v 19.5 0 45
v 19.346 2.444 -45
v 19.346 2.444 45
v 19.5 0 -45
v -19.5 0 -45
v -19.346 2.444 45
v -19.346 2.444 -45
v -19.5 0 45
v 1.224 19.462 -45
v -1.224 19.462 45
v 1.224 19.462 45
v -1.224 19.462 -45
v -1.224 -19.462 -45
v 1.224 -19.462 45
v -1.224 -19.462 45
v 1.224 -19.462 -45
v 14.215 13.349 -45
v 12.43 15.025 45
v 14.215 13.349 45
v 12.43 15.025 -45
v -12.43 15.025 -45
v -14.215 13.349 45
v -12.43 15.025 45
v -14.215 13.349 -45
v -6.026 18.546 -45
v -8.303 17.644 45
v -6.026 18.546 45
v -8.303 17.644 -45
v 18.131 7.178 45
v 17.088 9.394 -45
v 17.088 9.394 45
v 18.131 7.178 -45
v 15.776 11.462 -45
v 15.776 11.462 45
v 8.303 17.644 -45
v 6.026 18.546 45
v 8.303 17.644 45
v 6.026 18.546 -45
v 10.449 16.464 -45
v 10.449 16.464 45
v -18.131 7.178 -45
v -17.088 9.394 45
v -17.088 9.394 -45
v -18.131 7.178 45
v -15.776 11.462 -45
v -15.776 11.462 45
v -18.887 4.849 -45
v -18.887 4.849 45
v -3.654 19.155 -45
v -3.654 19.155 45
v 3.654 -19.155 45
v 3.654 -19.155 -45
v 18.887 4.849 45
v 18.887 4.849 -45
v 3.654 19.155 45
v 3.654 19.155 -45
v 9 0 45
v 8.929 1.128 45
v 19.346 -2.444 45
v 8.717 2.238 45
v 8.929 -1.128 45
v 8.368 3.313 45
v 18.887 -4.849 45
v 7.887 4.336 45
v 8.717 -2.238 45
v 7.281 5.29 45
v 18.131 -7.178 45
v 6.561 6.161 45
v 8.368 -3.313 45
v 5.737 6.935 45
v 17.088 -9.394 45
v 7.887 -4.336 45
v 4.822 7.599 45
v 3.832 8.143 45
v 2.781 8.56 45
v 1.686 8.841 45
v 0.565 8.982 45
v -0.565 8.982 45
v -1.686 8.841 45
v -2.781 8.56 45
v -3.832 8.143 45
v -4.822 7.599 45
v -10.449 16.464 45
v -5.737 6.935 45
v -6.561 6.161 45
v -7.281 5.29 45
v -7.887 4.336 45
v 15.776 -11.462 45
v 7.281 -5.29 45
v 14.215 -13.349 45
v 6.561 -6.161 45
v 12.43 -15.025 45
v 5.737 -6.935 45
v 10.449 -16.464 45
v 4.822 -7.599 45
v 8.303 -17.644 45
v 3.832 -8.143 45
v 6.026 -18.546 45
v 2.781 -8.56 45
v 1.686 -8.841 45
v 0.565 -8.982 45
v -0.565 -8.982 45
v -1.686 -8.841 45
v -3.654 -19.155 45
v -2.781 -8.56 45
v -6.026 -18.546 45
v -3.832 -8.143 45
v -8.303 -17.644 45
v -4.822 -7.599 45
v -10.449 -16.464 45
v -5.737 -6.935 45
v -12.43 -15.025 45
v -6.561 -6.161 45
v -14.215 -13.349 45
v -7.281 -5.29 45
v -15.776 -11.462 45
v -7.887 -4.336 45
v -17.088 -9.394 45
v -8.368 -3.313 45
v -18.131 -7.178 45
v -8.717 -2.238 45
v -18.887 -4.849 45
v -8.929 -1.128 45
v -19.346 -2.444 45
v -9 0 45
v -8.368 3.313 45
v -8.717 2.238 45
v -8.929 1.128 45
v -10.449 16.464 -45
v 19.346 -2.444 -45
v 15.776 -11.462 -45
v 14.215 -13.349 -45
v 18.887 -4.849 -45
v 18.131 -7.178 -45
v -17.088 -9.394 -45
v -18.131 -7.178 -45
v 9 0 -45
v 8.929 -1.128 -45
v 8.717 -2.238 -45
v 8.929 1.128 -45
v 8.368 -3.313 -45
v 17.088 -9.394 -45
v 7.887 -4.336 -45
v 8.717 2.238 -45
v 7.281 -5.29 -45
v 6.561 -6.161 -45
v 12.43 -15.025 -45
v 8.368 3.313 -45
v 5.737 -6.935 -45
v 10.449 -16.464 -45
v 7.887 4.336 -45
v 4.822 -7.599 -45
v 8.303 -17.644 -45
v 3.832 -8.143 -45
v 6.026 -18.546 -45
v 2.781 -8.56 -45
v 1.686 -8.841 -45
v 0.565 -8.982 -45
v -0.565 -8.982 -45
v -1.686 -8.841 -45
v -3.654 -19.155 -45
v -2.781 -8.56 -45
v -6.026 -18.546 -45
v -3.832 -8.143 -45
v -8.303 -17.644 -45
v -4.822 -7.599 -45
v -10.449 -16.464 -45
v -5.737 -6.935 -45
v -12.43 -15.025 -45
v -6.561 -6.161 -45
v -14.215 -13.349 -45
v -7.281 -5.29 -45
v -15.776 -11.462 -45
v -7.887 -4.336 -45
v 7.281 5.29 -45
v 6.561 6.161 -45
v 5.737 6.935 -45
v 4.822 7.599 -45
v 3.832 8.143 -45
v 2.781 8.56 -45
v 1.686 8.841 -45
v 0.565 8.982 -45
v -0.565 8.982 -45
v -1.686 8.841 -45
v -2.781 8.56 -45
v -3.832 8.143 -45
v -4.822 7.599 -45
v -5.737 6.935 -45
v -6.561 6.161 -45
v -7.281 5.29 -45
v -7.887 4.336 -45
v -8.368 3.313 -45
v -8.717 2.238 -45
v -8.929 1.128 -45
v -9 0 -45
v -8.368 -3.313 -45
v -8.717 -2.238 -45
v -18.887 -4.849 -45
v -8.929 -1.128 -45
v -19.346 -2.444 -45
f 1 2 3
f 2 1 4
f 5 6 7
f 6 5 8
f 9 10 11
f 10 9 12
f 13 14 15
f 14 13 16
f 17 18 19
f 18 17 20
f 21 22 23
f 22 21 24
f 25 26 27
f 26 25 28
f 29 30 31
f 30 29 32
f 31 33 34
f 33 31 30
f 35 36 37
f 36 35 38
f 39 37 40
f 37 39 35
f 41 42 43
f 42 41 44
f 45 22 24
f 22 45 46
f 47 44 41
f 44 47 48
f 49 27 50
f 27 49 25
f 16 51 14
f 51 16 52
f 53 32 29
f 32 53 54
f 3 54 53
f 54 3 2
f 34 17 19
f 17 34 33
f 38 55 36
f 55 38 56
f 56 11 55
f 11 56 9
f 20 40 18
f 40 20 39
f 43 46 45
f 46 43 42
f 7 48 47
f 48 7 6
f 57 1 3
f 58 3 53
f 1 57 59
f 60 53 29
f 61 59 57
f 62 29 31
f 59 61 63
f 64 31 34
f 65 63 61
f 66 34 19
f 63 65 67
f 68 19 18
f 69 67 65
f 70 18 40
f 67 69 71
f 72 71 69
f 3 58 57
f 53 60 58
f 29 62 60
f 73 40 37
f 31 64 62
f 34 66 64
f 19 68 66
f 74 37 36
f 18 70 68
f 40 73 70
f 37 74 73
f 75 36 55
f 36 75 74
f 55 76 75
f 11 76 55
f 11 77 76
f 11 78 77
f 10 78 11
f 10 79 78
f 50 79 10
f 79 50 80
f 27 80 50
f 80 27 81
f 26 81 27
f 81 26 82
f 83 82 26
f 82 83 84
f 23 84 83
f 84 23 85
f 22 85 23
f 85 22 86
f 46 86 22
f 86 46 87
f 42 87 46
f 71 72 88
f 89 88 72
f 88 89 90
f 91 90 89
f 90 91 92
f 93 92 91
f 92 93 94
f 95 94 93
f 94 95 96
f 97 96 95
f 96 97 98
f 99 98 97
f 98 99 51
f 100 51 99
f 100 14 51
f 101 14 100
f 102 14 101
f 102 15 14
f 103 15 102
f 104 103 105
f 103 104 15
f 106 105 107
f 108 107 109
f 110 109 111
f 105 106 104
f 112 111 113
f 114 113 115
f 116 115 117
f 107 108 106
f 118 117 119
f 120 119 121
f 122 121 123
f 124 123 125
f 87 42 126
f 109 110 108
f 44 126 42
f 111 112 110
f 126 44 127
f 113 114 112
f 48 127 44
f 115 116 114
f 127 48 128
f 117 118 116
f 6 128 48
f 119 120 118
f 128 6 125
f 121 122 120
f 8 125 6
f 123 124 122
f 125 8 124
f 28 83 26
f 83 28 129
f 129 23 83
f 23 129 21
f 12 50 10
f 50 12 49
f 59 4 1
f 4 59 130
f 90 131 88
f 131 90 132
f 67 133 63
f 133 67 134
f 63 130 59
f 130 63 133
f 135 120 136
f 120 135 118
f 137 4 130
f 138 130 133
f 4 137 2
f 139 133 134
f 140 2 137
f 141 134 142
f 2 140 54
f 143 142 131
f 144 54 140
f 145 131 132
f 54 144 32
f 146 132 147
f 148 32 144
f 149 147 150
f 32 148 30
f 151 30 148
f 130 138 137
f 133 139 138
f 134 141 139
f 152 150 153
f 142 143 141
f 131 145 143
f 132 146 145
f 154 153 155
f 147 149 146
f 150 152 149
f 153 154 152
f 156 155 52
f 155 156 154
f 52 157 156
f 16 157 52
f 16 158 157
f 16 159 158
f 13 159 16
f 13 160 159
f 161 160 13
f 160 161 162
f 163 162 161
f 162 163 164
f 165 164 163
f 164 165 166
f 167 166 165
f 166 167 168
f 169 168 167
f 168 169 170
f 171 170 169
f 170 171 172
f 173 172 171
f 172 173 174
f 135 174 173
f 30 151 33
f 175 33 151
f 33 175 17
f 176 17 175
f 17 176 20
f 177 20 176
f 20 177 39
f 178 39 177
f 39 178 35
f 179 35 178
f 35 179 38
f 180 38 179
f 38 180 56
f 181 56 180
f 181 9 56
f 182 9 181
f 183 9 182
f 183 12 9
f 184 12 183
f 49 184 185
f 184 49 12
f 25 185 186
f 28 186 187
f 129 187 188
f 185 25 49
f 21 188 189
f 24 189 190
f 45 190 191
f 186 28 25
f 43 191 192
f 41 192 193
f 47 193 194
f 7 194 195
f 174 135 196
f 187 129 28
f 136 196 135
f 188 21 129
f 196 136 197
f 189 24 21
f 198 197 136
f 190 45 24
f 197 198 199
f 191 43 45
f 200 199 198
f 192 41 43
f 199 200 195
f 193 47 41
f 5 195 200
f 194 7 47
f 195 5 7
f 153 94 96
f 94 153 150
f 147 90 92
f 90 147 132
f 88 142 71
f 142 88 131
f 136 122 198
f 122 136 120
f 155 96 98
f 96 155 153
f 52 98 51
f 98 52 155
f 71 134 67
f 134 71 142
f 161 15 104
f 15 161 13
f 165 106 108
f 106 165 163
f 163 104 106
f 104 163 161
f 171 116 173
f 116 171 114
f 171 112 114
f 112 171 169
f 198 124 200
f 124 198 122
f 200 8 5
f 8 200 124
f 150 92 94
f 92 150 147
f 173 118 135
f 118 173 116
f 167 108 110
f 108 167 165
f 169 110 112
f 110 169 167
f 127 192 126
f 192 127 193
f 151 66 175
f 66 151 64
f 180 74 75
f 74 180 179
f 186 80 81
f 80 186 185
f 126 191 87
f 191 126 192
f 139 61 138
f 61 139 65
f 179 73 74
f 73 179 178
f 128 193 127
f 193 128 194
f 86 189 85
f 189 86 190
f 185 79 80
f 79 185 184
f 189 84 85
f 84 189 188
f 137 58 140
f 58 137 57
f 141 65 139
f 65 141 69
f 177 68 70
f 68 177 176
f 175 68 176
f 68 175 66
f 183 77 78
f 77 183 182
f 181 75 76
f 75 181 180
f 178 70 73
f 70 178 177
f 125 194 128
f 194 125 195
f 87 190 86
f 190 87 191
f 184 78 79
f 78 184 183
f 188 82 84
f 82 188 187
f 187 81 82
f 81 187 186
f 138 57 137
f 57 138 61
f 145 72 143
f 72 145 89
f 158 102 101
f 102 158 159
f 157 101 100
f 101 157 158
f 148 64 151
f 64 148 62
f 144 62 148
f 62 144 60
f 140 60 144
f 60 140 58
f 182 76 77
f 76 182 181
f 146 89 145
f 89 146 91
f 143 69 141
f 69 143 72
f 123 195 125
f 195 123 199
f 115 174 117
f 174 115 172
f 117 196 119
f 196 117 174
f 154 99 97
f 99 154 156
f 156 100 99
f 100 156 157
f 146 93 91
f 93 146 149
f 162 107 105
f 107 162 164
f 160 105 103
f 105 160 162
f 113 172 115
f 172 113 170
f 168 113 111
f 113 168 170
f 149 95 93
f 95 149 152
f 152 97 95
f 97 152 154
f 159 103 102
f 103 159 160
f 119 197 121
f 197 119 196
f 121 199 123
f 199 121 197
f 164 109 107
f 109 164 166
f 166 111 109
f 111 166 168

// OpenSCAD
$fn = 50;


difference() {
	union() {
		translate(v = [0, 0, -45.0000000000]) {
			cylinder(h = 90, r = 19.5000000000);
		}
	}
	union() {
		translate(v = [0, 0, -100.0000000000]) {
			cylinder(h = 200, r = 9);
		}
	}
}
